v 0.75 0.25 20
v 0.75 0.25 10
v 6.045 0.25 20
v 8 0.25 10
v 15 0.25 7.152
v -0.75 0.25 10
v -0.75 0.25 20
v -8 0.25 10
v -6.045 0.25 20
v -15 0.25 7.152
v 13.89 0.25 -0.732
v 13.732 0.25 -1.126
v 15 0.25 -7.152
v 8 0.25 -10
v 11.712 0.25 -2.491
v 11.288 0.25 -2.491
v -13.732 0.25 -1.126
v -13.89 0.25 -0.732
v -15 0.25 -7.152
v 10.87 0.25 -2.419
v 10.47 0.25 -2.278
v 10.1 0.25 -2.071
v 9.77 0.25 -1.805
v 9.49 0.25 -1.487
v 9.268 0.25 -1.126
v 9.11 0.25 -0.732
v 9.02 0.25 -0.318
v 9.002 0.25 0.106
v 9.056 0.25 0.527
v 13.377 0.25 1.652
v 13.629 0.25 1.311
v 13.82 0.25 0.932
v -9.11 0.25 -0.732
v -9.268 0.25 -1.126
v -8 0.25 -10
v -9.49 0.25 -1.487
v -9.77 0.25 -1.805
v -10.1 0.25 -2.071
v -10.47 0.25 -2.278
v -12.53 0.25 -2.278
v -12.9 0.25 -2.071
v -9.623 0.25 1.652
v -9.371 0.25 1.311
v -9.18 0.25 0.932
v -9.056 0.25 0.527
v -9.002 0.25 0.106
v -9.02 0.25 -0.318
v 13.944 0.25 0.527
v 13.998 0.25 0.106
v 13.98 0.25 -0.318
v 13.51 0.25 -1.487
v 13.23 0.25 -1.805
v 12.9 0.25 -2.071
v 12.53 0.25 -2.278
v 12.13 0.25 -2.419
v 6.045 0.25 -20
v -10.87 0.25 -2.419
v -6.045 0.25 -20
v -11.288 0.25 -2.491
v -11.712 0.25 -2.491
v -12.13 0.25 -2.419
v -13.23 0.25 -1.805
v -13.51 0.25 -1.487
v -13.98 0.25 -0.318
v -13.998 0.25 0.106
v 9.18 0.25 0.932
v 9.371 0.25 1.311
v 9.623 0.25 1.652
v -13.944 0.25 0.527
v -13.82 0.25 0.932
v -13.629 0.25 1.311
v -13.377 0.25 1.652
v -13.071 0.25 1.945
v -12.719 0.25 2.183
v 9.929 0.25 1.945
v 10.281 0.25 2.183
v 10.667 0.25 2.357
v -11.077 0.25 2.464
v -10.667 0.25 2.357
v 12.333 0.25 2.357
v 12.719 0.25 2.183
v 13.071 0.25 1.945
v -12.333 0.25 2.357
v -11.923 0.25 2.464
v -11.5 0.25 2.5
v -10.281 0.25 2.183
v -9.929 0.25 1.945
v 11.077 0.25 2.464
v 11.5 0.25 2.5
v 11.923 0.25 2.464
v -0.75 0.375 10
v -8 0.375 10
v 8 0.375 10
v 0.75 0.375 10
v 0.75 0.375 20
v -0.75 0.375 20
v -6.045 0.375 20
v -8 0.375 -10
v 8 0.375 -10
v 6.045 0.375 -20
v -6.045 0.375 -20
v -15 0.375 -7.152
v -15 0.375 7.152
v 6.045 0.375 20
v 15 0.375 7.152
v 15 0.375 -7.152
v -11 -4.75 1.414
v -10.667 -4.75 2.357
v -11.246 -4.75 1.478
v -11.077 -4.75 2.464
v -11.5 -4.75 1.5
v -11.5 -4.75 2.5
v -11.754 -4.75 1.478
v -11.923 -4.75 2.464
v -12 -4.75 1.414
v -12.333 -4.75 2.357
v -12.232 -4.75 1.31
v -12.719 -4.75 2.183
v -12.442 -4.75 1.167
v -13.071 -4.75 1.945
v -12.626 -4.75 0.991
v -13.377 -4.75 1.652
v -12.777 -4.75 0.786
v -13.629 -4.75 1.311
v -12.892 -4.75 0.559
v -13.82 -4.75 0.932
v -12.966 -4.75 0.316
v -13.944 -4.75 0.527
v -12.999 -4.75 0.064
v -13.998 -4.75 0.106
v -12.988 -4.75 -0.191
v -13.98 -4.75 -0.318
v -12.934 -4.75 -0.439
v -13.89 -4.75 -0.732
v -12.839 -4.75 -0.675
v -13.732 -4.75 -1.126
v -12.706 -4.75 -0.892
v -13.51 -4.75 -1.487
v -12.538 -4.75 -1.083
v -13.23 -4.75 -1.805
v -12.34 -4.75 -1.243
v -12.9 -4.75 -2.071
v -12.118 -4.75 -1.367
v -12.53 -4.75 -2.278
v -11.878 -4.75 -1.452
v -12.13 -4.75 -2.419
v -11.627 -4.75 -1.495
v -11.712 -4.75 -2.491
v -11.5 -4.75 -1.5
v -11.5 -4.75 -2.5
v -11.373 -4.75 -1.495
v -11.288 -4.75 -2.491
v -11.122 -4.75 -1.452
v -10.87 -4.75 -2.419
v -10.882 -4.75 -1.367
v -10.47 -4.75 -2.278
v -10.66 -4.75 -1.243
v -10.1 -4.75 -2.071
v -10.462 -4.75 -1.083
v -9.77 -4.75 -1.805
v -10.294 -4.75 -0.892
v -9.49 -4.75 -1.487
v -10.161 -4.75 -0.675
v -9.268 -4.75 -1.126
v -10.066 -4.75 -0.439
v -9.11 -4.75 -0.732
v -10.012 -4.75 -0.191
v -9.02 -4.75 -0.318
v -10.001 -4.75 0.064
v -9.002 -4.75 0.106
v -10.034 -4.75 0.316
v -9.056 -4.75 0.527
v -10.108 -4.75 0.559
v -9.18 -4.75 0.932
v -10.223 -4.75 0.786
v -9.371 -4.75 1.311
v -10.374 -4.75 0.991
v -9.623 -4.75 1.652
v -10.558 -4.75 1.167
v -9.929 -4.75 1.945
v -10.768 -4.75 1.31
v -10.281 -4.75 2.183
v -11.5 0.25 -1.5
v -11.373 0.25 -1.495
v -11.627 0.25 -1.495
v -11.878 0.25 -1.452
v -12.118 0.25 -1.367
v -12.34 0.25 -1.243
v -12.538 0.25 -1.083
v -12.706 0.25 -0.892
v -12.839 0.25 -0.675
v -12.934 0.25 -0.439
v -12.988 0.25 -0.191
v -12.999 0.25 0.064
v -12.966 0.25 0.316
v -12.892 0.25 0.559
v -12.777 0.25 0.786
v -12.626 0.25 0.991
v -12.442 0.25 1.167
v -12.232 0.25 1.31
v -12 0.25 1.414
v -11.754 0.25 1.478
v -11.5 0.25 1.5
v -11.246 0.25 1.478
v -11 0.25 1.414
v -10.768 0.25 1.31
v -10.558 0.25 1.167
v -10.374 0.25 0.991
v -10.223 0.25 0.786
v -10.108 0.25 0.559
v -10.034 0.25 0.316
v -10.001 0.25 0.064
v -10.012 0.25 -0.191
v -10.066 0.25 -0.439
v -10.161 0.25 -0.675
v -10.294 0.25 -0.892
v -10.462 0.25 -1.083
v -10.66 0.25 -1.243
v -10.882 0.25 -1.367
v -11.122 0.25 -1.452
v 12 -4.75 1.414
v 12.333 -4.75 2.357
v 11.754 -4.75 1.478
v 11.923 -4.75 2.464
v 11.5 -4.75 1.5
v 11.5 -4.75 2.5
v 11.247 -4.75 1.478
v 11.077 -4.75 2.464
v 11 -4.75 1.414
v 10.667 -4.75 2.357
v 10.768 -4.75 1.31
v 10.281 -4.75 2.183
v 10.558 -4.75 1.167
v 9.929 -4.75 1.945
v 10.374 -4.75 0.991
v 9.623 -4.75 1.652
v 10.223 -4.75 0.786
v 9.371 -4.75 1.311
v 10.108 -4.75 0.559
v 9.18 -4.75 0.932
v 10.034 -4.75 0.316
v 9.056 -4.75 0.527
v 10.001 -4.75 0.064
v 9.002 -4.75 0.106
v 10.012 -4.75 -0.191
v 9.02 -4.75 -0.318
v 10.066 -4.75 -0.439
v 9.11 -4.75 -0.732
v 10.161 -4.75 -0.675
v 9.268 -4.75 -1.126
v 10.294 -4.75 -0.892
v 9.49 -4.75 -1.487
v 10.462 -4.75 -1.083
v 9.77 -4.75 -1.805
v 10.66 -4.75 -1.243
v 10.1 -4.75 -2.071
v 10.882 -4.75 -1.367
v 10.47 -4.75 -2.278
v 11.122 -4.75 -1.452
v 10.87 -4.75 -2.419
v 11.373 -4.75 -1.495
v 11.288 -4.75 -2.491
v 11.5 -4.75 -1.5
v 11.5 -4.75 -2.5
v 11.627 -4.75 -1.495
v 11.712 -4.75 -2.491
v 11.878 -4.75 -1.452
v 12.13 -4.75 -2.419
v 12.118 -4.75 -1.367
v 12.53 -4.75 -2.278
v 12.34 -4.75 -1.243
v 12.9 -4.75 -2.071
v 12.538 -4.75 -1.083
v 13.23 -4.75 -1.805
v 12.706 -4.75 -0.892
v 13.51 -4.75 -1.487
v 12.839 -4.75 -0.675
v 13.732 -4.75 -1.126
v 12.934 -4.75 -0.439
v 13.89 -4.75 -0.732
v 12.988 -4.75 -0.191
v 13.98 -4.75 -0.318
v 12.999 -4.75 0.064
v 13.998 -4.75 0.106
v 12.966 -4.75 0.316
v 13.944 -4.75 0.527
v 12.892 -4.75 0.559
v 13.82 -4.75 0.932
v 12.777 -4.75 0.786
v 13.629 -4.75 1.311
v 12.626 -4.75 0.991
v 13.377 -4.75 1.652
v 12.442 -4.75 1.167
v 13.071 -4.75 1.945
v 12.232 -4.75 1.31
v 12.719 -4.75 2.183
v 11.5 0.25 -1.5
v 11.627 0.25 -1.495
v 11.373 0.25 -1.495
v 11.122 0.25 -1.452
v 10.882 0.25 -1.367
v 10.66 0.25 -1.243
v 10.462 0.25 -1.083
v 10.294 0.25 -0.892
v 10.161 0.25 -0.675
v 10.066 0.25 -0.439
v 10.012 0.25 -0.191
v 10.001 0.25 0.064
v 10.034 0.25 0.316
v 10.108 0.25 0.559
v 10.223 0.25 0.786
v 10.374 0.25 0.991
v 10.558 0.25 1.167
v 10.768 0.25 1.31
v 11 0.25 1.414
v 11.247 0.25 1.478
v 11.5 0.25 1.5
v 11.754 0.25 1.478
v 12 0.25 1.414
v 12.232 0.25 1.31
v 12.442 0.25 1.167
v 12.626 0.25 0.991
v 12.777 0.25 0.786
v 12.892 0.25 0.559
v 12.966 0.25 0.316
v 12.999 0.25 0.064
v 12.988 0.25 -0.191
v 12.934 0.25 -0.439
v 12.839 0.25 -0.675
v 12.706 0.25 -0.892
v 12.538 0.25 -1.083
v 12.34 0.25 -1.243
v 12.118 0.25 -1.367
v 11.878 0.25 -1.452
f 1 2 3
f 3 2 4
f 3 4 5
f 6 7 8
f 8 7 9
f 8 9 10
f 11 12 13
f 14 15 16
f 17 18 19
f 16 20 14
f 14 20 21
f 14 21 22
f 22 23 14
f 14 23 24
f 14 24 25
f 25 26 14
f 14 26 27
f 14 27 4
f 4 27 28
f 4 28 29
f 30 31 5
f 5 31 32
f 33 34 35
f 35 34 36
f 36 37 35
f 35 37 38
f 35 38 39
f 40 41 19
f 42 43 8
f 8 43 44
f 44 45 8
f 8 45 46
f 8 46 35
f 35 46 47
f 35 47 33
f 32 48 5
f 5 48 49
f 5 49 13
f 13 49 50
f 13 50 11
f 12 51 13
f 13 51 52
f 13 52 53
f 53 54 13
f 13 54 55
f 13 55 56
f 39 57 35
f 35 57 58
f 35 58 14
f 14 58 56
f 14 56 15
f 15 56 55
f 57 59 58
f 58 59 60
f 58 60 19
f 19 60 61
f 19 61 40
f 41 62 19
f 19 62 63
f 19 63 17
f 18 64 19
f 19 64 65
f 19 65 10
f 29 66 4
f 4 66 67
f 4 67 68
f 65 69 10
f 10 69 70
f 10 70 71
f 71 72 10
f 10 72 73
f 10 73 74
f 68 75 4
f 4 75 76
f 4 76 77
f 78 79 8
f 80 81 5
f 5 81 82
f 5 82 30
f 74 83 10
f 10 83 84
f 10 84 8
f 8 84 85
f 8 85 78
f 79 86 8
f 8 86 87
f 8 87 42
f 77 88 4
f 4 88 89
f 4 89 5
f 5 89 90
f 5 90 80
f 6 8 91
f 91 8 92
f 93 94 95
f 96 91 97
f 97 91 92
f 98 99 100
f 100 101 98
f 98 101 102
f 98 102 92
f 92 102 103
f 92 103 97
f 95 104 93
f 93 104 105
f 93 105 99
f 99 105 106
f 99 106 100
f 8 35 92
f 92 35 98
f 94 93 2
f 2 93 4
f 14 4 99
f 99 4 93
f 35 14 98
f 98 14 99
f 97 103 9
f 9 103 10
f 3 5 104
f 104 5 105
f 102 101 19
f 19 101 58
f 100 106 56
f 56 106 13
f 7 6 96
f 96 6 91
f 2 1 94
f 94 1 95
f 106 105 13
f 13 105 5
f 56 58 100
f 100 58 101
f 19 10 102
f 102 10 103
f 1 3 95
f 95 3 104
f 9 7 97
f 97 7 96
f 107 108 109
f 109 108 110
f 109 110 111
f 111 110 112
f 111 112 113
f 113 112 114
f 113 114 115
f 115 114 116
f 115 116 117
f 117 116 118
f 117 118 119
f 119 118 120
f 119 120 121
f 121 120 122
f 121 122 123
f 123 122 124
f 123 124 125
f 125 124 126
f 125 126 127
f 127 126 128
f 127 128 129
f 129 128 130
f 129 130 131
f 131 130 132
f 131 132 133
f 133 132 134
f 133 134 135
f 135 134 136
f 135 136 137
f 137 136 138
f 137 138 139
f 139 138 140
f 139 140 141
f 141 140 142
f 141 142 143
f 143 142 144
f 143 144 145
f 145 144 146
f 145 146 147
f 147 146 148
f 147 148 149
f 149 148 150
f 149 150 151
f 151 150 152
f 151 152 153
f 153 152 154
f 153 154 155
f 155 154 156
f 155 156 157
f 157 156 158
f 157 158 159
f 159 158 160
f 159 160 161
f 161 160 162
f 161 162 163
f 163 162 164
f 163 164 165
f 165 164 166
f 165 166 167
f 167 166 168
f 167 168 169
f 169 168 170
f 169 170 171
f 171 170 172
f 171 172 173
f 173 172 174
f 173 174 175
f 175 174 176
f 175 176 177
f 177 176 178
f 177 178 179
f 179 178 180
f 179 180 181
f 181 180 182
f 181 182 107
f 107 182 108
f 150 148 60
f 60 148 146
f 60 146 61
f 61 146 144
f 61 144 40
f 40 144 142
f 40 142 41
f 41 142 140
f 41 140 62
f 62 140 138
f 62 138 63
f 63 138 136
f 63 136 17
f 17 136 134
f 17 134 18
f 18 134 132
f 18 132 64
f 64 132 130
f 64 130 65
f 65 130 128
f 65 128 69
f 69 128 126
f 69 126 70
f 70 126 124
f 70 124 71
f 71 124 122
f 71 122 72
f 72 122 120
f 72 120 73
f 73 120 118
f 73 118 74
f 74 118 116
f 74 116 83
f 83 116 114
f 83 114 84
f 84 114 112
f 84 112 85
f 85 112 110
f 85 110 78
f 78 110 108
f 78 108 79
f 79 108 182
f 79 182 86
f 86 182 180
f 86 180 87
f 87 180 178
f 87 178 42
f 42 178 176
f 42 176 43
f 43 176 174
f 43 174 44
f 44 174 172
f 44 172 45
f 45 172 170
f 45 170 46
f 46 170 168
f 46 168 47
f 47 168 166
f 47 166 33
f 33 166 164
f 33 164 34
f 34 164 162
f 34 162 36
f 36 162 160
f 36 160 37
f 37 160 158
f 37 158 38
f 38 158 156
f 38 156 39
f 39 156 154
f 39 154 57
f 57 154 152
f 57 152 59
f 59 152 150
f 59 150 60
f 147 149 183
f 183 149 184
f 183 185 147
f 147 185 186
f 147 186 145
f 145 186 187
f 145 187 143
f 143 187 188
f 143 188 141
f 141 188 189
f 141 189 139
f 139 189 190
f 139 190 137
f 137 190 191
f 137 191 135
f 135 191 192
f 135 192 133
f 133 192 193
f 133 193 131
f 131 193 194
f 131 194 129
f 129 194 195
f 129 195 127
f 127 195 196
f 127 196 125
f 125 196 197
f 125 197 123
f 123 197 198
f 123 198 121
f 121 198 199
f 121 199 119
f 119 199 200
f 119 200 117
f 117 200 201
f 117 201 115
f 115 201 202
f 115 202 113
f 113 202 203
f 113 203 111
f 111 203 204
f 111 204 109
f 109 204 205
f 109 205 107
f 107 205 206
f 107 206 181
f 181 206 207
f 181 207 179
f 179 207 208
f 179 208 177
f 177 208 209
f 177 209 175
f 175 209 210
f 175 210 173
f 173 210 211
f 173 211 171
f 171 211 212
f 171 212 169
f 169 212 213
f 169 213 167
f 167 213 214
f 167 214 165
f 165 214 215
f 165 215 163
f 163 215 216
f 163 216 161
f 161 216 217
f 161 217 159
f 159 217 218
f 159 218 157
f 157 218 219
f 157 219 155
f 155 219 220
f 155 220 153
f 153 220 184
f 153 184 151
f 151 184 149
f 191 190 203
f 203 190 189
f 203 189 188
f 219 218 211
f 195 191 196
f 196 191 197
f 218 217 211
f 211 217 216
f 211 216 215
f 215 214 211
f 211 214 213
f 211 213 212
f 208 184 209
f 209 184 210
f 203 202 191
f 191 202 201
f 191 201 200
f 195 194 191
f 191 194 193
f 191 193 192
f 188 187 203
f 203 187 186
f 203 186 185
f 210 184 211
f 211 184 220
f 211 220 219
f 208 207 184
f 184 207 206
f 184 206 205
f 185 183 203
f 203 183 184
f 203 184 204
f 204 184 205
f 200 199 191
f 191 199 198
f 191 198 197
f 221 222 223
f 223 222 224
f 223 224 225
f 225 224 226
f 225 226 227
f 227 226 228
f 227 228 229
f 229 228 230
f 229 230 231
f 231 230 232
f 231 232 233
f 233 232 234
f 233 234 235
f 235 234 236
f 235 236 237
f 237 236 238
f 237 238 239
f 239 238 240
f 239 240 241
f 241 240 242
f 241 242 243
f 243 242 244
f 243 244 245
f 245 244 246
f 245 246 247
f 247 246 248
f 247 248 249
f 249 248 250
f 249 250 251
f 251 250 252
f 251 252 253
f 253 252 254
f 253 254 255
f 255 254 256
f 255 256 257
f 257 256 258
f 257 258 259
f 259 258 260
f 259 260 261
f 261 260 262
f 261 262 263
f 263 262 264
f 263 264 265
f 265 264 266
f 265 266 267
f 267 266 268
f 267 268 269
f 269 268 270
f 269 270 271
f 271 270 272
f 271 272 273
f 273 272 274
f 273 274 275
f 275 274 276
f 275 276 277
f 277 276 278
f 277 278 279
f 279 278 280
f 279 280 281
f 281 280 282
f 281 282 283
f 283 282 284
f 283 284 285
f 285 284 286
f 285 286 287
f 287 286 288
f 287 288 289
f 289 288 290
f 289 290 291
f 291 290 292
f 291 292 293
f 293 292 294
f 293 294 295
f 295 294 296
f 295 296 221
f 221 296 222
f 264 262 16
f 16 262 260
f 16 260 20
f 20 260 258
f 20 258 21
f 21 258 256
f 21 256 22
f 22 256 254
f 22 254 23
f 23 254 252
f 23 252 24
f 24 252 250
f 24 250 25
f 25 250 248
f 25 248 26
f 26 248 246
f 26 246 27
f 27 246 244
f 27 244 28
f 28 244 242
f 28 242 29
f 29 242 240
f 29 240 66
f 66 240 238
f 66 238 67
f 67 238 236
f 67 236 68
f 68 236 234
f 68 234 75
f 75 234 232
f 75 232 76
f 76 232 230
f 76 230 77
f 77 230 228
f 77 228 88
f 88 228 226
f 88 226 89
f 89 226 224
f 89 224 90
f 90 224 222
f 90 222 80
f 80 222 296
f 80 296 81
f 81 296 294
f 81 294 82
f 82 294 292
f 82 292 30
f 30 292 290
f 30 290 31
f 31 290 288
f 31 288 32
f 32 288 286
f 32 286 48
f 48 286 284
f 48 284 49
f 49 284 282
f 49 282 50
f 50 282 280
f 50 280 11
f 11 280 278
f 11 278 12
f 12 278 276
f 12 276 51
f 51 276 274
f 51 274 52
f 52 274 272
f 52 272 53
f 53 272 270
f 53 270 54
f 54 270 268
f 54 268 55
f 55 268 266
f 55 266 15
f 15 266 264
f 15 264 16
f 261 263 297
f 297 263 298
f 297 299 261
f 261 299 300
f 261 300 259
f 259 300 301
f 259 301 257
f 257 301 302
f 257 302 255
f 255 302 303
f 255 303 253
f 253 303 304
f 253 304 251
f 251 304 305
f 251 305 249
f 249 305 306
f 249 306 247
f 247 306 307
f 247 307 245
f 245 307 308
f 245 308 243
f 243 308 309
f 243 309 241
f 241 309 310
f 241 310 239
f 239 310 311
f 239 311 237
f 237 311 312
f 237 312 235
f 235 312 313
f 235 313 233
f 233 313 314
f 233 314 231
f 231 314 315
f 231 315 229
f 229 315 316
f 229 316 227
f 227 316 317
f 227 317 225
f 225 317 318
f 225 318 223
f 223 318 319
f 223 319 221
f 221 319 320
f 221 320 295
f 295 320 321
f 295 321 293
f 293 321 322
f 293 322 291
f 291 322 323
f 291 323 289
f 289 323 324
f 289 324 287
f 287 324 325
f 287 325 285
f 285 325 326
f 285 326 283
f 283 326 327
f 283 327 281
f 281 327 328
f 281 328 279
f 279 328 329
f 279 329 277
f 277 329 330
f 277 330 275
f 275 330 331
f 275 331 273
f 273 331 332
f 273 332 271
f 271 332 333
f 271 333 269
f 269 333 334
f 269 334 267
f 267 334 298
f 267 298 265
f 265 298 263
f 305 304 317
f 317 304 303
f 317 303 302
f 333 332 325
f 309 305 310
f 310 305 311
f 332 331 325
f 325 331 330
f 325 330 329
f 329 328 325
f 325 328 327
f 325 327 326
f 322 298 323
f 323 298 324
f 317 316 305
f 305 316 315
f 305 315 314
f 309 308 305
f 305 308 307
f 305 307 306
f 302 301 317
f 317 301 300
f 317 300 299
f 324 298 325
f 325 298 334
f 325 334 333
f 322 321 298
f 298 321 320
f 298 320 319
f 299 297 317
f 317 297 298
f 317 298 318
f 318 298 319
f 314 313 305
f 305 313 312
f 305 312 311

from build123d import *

# Parameters (mm, degrees)
SKETCH1_W           = 33
SKETCH1_H           = 43
BOSS_EXTRUDE1_DEPTH = 0.375
CUT_EXTRUDE1_DEPTH  = 0.25
SKETCH3_W           = 16
SKETCH3_H           = 20
CUT_EXTRUDE2_DEPTH  = 4.125
CUT_EXTRUDE3_DEPTH  = 4.125
SKETCH5_W           = 1.5
SKETCH5_H           = 10
CUT_EXTRUDE4_DEPTH  = 10
SKETCH6_W           = 11.671124307
SKETCH6_H           = 24.955330834
SKETCH6_W_2         = 23.228162705
SKETCH6_H_2         = 5.306808708
SKETCH6_W_3         = 8.676096845
SKETCH6_H_3         = 22.396436041
SKETCH6_W_4         = 27.721988928
SKETCH6_H_4         = 5.80460418
CUT_EXTRUDE5_DEPTH  = 5
SKETCH7_R           = 2.5
SKETCH7_R_2         = 1.5
BOSS_EXTRUDE2_DEPTH = 5


with BuildPart() as part:
    # Sketch1 → Boss-Extrude1 (new body)
    with BuildSketch(Plane(origin=(0, 0, 0), x_dir=(1, 0, 0), z_dir=(0, 1, 0))):
        Rectangle(SKETCH1_W, SKETCH1_H)
    extrude(amount=BOSS_EXTRUDE1_DEPTH)

    # Sketch2 → Cut-Extrude1 (cut)
    with BuildSketch(Plane.XZ):
        Polygon((5, 21.5), (16.5, 21.5), (16.5, 5), (15, 5), (15, -5), (16.5, -5), (16.5, -21.5), (5, -21.5), (5, -20), (-5, -20), (-5, -21.5), (-16.5, -21.5), (-16.5, -5), (-15, -5), (-15, 5), (-16.5, 5), (-16.5, 21.5), (-5, 21.5), (-5, 20), (5, 20), align=None)
    extrude(amount=-CUT_EXTRUDE1_DEPTH, mode=Mode.SUBTRACT)

    # Sketch3 → Cut-Extrude2 (cut)
    with BuildSketch(Plane.XZ.offset(-0.25)):
        Rectangle(SKETCH3_W, SKETCH3_H)
    extrude(amount=-CUT_EXTRUDE2_DEPTH, mode=Mode.SUBTRACT)

    # Sketch4 → Cut-Extrude3 (cut)
    with BuildSketch(Plane.XZ.offset(-0.25)):
        Polygon((-5, 21.5), (-16.5, 5), (-16.5, 21.5), align=None)
        Polygon((5, 21.5), (16.5, 5), (16.5, 21.5), align=None)
        Polygon((-16.5, -5), (-5, -21.5), (-16.5, -21.5), align=None)
        Polygon((16.5, -5), (5, -21.5), (16.5, -21.5), align=None)
    extrude(amount=-CUT_EXTRUDE3_DEPTH, mode=Mode.SUBTRACT)

    # Sketch5 → Cut-Extrude4 (cut)
    with BuildSketch(Plane.XZ.offset(-0.25)):
        with Locations((0, 15)):
            Rectangle(SKETCH5_W, SKETCH5_H)
    extrude(amount=-CUT_EXTRUDE4_DEPTH, mode=Mode.SUBTRACT)

    # Sketch6 → Cut-Extrude5 (cut, symmetric)
    with BuildSketch(Plane.XZ.offset(-0.25)):
        with Locations((20.835562154, -1.334081217)):
            Rectangle(SKETCH6_W, SKETCH6_H)
        with Locations((-0.739473345, -22.653404354)):
            Rectangle(SKETCH6_W_2, SKETCH6_H_2)
        with Locations((-19.338048423, -1.063266803)):
            Rectangle(SKETCH6_W_3, SKETCH6_H_3)
        with Locations((-0.937806624, 22.90230209)):
            Rectangle(SKETCH6_W_4, SKETCH6_H_4)
    extrude(amount=CUT_EXTRUDE5_DEPTH, both=True, mode=Mode.SUBTRACT)

    # Sketch7 → Boss-Extrude2 (add)
    # profile 1 of 2: a face of its own
    with BuildSketch(Plane(origin=(0, 0.25, 0), x_dir=(-1, 0, 0), z_dir=(0, -1, 0))):
        with Locations(Location((11.5, 0, 0), (0, 0, 270))):
            Circle(SKETCH7_R)
        with Locations(Location((11.5, 0, 0), (0, 0, 90))):
            Circle(SKETCH7_R_2, mode=Mode.SUBTRACT)
    # profile 2 of 2: a face of its own
    with BuildSketch(Plane(origin=(0, 0.25, 0), x_dir=(-1, 0, 0), z_dir=(0, -1, 0))):
        with Locations(Location((-11.5, 0, 0), (0, 0, 270))):
            Circle(SKETCH7_R)
        with Locations(Location((-11.5, 0, 0), (0, 0, 90))):
            Circle(SKETCH7_R_2, mode=Mode.SUBTRACT)
    extrude(amount=BOSS_EXTRUDE2_DEPTH)


solid = part.part
